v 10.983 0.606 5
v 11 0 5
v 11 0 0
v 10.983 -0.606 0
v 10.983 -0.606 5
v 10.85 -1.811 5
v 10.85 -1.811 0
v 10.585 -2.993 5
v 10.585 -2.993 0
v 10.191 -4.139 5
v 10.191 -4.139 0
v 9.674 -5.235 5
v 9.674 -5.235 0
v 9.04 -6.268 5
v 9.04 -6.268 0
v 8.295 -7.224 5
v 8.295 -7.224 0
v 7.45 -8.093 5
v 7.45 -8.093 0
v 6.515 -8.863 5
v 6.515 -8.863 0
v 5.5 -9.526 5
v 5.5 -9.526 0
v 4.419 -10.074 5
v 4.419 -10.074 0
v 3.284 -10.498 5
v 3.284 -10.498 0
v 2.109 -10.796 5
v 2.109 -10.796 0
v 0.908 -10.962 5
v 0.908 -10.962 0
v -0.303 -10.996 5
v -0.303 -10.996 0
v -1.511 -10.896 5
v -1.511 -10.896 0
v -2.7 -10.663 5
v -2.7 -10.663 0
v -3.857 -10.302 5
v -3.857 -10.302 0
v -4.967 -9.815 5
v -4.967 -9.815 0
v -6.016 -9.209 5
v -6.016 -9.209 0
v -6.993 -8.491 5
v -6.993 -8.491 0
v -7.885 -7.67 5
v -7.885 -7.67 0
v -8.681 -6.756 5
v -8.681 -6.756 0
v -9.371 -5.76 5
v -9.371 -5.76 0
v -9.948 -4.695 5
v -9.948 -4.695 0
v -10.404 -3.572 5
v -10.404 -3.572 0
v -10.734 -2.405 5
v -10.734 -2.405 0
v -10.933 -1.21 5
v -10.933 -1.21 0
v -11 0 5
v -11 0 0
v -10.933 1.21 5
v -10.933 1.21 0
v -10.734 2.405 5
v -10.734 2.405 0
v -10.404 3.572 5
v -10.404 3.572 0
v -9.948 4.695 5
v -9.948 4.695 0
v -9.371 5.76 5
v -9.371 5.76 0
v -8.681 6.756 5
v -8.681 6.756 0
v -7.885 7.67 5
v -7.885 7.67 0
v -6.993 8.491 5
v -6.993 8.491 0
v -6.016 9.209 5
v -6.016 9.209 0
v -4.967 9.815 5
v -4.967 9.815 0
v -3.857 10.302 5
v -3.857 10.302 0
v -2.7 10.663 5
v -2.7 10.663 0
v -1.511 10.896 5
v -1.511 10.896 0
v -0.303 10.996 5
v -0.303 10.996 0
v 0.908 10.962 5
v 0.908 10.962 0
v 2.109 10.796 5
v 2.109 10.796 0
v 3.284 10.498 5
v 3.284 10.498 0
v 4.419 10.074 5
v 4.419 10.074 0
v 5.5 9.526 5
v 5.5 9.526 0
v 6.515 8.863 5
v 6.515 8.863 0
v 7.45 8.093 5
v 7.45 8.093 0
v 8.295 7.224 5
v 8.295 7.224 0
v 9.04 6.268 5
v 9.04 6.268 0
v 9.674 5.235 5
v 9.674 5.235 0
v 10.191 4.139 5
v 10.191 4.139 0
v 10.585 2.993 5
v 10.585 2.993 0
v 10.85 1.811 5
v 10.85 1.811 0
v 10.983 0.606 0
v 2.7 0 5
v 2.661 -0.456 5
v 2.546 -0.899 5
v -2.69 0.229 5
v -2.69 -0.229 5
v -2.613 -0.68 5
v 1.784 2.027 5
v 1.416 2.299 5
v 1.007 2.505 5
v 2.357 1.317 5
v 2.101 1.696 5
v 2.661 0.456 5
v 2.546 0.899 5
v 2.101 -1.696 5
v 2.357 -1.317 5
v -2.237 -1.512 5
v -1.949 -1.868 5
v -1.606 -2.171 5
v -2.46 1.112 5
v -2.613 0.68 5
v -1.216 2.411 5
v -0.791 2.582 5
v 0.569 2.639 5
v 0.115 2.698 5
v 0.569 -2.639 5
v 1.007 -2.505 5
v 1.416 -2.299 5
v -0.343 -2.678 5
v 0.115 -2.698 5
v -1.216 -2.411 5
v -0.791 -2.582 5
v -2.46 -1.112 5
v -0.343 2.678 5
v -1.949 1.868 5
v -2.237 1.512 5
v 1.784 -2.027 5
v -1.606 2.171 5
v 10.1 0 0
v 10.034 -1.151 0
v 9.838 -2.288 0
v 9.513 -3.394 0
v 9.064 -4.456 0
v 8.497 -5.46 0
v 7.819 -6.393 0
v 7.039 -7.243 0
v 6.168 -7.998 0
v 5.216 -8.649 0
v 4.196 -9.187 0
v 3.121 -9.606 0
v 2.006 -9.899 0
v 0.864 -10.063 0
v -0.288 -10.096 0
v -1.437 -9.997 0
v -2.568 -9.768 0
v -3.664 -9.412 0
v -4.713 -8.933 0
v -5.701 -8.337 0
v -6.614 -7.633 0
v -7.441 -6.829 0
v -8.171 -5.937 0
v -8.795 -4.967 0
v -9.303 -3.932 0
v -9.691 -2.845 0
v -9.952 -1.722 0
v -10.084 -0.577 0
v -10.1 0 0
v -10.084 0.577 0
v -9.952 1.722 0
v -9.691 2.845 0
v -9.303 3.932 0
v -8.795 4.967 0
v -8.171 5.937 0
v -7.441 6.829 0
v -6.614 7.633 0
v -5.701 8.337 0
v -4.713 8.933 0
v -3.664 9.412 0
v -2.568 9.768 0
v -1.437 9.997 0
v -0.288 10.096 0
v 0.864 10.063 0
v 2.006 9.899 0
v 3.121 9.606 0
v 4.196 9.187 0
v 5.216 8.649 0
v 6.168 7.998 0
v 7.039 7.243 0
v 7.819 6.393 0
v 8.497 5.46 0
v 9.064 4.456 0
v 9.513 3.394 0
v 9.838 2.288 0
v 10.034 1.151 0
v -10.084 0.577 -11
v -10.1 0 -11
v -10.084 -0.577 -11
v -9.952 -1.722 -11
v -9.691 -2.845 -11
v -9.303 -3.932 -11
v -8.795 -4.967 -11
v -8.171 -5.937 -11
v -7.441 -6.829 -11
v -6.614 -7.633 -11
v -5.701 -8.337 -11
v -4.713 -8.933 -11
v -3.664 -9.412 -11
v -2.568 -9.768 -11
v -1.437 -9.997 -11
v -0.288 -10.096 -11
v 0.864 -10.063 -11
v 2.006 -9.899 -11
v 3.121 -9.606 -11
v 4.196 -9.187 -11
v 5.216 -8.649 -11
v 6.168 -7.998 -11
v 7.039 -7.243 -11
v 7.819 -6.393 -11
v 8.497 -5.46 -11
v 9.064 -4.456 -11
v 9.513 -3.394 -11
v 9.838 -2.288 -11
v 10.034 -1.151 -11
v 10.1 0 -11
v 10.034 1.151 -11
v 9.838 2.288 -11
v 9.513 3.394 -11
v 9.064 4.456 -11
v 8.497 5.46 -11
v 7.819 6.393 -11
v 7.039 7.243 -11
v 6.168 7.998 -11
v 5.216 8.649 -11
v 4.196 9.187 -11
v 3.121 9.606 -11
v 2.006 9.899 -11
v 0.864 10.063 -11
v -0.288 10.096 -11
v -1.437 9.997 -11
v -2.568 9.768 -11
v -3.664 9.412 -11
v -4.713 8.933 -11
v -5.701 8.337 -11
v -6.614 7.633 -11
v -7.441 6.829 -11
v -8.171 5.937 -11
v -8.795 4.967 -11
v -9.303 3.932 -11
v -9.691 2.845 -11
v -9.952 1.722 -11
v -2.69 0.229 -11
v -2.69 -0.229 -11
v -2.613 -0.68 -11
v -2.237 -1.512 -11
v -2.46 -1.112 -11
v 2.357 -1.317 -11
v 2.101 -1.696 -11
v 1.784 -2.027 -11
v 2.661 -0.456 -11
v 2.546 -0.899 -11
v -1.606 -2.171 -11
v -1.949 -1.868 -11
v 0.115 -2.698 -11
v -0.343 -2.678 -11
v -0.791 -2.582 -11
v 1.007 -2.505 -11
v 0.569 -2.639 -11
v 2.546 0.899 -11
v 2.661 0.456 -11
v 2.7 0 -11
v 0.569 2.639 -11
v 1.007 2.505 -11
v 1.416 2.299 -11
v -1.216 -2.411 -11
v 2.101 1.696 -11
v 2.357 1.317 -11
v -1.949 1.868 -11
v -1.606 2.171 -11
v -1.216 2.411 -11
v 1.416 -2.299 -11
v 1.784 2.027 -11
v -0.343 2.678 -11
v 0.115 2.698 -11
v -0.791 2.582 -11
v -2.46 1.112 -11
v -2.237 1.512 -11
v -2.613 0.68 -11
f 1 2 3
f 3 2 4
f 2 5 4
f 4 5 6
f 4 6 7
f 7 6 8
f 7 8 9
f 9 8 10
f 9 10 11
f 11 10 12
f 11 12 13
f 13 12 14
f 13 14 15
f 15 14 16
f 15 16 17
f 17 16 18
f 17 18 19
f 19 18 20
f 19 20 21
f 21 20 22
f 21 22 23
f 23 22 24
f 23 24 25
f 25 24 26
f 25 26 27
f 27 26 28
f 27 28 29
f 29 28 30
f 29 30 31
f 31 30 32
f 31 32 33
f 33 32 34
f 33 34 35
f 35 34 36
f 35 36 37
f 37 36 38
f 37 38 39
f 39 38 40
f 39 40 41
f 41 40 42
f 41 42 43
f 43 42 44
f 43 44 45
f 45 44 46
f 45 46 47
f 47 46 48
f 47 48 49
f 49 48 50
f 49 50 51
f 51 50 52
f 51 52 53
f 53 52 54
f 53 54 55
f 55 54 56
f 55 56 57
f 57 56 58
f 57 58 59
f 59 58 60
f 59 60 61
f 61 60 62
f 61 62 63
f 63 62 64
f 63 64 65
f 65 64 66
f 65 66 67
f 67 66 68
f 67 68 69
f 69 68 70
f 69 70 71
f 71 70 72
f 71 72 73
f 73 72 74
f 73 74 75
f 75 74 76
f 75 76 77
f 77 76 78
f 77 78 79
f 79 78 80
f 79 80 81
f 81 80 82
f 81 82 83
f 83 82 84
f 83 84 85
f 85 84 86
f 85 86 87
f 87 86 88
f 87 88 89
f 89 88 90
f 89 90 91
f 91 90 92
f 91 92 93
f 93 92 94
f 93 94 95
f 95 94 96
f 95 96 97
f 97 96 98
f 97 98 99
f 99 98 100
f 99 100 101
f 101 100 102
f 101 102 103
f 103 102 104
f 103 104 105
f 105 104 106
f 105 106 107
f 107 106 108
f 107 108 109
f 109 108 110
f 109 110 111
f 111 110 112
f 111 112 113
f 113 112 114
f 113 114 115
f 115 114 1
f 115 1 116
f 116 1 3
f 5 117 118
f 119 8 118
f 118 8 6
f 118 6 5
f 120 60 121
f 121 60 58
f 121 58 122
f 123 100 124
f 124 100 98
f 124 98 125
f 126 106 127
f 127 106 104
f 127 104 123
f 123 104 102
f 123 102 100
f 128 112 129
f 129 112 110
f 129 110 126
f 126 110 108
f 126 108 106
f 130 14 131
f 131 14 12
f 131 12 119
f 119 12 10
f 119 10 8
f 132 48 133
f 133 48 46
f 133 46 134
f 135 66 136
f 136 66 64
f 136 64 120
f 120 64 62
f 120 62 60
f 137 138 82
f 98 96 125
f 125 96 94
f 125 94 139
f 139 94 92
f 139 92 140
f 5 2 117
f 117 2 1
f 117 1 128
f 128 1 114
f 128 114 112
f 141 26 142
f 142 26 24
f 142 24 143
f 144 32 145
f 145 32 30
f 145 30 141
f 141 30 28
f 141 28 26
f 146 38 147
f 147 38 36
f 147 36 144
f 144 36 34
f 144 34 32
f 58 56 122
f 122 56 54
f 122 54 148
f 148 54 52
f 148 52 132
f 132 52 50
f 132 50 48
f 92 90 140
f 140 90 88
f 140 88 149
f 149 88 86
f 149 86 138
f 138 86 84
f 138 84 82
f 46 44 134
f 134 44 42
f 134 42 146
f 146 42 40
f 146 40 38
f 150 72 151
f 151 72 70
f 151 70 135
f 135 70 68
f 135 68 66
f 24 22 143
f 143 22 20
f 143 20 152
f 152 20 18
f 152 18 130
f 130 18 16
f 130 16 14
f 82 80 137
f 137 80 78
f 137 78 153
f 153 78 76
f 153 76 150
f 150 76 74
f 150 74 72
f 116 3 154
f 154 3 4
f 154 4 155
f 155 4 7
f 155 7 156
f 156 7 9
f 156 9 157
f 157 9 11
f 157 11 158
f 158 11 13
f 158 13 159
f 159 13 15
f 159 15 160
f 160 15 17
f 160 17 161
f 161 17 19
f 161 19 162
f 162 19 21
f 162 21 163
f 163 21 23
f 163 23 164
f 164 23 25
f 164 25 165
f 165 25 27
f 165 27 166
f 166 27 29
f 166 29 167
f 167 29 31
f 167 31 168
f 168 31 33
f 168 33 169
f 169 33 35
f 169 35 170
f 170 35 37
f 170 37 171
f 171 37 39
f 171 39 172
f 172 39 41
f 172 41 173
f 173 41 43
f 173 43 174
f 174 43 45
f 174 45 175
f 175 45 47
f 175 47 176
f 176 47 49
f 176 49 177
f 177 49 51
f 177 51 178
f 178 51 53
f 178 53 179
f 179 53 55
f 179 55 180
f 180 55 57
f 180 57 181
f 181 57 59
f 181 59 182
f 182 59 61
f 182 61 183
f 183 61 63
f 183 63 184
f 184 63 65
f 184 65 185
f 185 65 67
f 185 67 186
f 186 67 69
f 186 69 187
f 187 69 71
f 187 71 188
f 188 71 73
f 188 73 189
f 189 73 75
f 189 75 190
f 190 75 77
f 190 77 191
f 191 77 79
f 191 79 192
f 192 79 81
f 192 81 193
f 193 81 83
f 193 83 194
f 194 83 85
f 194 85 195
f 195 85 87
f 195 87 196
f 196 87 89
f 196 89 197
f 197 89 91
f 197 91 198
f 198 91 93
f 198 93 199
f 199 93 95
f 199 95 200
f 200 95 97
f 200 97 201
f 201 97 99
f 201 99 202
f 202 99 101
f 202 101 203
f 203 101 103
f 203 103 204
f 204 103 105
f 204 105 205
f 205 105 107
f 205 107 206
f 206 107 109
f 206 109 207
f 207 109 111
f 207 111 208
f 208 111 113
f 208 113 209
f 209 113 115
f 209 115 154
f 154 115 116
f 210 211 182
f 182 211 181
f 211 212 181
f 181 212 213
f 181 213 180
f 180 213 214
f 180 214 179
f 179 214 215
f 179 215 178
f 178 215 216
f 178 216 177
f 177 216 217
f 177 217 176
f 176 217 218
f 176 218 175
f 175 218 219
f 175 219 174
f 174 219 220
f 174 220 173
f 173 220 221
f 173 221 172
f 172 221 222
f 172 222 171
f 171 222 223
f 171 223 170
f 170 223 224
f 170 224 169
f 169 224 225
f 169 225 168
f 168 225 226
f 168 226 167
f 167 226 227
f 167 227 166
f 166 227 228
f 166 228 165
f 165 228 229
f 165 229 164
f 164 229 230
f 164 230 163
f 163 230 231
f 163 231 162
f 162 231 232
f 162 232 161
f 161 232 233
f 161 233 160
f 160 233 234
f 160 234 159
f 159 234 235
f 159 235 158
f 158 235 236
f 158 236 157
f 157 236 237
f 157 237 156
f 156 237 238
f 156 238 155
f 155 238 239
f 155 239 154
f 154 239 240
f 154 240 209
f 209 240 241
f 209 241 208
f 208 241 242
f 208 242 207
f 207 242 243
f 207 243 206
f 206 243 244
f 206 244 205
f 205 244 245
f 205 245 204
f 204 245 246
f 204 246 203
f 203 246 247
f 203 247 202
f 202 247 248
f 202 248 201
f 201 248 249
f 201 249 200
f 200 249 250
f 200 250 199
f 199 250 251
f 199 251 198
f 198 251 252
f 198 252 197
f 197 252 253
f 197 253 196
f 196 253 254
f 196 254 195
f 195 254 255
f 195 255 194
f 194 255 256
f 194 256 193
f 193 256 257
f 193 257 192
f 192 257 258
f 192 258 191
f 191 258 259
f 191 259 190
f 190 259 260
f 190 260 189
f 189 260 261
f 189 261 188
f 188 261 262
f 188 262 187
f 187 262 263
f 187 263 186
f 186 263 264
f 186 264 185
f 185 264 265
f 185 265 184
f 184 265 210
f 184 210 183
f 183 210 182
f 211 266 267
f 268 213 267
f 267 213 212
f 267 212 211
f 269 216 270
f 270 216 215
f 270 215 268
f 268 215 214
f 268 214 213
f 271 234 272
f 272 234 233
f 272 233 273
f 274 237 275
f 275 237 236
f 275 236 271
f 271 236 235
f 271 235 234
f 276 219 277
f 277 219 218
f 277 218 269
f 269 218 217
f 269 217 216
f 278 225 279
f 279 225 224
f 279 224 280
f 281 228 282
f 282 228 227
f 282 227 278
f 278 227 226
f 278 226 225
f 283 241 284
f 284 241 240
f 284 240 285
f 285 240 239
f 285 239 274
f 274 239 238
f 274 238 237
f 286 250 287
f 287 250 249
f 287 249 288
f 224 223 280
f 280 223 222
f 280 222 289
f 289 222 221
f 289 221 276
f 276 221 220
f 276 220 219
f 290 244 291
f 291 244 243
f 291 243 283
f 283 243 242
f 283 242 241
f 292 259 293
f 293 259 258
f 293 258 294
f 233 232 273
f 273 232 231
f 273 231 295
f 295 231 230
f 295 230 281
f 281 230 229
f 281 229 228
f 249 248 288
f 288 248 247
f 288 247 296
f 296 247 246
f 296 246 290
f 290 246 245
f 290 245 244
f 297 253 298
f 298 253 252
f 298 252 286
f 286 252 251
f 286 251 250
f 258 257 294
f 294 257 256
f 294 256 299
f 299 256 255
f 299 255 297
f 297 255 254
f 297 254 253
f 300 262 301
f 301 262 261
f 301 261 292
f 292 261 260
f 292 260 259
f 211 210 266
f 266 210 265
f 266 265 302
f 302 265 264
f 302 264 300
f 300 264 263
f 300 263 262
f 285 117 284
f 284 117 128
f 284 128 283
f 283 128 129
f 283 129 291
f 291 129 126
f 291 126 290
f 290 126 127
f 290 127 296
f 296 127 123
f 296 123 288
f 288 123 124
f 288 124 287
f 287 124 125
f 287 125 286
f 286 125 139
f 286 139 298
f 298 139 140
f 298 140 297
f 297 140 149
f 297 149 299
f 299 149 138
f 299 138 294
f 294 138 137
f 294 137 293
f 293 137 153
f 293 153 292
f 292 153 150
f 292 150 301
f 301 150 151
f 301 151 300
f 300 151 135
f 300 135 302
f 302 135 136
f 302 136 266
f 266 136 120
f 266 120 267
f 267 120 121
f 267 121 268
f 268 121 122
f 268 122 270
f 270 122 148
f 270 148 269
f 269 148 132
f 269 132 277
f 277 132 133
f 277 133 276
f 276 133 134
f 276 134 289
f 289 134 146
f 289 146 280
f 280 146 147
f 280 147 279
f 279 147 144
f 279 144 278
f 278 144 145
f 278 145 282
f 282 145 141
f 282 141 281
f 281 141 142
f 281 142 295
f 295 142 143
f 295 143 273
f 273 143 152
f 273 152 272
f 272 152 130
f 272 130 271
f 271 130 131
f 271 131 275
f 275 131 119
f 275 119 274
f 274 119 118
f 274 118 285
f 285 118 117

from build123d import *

# Parameters (mm, degrees)
SKETCH3_R           = 11
BOSS_EXTRUDE1_DEPTH = 5
SKETCH4_R           = 10.1
BOSS_EXTRUDE2_DEPTH = 11
SKETCH5_R           = 2.7
CUT_EXTRUDE1_DEPTH  = 17


with BuildPart() as part:
    # Sketch3 → Boss-Extrude1 (new body)
    with BuildSketch(Plane.XY):
        Circle(SKETCH3_R)
    extrude(amount=BOSS_EXTRUDE1_DEPTH)

    # Sketch4 → Boss-Extrude2 (add)
    with BuildSketch(Plane(origin=(0, 0, 0), x_dir=(-1, 0, 0), z_dir=(0, 0, -1))):
        Circle(SKETCH4_R)
    extrude(amount=BOSS_EXTRUDE2_DEPTH)

    # Sketch5 → Cut-Extrude1 (cut, through all)
    with BuildSketch(Plane.XY.offset(5)):
        Circle(SKETCH5_R)
    extrude(amount=-CUT_EXTRUDE1_DEPTH, mode=Mode.SUBTRACT)


solid = part.part
